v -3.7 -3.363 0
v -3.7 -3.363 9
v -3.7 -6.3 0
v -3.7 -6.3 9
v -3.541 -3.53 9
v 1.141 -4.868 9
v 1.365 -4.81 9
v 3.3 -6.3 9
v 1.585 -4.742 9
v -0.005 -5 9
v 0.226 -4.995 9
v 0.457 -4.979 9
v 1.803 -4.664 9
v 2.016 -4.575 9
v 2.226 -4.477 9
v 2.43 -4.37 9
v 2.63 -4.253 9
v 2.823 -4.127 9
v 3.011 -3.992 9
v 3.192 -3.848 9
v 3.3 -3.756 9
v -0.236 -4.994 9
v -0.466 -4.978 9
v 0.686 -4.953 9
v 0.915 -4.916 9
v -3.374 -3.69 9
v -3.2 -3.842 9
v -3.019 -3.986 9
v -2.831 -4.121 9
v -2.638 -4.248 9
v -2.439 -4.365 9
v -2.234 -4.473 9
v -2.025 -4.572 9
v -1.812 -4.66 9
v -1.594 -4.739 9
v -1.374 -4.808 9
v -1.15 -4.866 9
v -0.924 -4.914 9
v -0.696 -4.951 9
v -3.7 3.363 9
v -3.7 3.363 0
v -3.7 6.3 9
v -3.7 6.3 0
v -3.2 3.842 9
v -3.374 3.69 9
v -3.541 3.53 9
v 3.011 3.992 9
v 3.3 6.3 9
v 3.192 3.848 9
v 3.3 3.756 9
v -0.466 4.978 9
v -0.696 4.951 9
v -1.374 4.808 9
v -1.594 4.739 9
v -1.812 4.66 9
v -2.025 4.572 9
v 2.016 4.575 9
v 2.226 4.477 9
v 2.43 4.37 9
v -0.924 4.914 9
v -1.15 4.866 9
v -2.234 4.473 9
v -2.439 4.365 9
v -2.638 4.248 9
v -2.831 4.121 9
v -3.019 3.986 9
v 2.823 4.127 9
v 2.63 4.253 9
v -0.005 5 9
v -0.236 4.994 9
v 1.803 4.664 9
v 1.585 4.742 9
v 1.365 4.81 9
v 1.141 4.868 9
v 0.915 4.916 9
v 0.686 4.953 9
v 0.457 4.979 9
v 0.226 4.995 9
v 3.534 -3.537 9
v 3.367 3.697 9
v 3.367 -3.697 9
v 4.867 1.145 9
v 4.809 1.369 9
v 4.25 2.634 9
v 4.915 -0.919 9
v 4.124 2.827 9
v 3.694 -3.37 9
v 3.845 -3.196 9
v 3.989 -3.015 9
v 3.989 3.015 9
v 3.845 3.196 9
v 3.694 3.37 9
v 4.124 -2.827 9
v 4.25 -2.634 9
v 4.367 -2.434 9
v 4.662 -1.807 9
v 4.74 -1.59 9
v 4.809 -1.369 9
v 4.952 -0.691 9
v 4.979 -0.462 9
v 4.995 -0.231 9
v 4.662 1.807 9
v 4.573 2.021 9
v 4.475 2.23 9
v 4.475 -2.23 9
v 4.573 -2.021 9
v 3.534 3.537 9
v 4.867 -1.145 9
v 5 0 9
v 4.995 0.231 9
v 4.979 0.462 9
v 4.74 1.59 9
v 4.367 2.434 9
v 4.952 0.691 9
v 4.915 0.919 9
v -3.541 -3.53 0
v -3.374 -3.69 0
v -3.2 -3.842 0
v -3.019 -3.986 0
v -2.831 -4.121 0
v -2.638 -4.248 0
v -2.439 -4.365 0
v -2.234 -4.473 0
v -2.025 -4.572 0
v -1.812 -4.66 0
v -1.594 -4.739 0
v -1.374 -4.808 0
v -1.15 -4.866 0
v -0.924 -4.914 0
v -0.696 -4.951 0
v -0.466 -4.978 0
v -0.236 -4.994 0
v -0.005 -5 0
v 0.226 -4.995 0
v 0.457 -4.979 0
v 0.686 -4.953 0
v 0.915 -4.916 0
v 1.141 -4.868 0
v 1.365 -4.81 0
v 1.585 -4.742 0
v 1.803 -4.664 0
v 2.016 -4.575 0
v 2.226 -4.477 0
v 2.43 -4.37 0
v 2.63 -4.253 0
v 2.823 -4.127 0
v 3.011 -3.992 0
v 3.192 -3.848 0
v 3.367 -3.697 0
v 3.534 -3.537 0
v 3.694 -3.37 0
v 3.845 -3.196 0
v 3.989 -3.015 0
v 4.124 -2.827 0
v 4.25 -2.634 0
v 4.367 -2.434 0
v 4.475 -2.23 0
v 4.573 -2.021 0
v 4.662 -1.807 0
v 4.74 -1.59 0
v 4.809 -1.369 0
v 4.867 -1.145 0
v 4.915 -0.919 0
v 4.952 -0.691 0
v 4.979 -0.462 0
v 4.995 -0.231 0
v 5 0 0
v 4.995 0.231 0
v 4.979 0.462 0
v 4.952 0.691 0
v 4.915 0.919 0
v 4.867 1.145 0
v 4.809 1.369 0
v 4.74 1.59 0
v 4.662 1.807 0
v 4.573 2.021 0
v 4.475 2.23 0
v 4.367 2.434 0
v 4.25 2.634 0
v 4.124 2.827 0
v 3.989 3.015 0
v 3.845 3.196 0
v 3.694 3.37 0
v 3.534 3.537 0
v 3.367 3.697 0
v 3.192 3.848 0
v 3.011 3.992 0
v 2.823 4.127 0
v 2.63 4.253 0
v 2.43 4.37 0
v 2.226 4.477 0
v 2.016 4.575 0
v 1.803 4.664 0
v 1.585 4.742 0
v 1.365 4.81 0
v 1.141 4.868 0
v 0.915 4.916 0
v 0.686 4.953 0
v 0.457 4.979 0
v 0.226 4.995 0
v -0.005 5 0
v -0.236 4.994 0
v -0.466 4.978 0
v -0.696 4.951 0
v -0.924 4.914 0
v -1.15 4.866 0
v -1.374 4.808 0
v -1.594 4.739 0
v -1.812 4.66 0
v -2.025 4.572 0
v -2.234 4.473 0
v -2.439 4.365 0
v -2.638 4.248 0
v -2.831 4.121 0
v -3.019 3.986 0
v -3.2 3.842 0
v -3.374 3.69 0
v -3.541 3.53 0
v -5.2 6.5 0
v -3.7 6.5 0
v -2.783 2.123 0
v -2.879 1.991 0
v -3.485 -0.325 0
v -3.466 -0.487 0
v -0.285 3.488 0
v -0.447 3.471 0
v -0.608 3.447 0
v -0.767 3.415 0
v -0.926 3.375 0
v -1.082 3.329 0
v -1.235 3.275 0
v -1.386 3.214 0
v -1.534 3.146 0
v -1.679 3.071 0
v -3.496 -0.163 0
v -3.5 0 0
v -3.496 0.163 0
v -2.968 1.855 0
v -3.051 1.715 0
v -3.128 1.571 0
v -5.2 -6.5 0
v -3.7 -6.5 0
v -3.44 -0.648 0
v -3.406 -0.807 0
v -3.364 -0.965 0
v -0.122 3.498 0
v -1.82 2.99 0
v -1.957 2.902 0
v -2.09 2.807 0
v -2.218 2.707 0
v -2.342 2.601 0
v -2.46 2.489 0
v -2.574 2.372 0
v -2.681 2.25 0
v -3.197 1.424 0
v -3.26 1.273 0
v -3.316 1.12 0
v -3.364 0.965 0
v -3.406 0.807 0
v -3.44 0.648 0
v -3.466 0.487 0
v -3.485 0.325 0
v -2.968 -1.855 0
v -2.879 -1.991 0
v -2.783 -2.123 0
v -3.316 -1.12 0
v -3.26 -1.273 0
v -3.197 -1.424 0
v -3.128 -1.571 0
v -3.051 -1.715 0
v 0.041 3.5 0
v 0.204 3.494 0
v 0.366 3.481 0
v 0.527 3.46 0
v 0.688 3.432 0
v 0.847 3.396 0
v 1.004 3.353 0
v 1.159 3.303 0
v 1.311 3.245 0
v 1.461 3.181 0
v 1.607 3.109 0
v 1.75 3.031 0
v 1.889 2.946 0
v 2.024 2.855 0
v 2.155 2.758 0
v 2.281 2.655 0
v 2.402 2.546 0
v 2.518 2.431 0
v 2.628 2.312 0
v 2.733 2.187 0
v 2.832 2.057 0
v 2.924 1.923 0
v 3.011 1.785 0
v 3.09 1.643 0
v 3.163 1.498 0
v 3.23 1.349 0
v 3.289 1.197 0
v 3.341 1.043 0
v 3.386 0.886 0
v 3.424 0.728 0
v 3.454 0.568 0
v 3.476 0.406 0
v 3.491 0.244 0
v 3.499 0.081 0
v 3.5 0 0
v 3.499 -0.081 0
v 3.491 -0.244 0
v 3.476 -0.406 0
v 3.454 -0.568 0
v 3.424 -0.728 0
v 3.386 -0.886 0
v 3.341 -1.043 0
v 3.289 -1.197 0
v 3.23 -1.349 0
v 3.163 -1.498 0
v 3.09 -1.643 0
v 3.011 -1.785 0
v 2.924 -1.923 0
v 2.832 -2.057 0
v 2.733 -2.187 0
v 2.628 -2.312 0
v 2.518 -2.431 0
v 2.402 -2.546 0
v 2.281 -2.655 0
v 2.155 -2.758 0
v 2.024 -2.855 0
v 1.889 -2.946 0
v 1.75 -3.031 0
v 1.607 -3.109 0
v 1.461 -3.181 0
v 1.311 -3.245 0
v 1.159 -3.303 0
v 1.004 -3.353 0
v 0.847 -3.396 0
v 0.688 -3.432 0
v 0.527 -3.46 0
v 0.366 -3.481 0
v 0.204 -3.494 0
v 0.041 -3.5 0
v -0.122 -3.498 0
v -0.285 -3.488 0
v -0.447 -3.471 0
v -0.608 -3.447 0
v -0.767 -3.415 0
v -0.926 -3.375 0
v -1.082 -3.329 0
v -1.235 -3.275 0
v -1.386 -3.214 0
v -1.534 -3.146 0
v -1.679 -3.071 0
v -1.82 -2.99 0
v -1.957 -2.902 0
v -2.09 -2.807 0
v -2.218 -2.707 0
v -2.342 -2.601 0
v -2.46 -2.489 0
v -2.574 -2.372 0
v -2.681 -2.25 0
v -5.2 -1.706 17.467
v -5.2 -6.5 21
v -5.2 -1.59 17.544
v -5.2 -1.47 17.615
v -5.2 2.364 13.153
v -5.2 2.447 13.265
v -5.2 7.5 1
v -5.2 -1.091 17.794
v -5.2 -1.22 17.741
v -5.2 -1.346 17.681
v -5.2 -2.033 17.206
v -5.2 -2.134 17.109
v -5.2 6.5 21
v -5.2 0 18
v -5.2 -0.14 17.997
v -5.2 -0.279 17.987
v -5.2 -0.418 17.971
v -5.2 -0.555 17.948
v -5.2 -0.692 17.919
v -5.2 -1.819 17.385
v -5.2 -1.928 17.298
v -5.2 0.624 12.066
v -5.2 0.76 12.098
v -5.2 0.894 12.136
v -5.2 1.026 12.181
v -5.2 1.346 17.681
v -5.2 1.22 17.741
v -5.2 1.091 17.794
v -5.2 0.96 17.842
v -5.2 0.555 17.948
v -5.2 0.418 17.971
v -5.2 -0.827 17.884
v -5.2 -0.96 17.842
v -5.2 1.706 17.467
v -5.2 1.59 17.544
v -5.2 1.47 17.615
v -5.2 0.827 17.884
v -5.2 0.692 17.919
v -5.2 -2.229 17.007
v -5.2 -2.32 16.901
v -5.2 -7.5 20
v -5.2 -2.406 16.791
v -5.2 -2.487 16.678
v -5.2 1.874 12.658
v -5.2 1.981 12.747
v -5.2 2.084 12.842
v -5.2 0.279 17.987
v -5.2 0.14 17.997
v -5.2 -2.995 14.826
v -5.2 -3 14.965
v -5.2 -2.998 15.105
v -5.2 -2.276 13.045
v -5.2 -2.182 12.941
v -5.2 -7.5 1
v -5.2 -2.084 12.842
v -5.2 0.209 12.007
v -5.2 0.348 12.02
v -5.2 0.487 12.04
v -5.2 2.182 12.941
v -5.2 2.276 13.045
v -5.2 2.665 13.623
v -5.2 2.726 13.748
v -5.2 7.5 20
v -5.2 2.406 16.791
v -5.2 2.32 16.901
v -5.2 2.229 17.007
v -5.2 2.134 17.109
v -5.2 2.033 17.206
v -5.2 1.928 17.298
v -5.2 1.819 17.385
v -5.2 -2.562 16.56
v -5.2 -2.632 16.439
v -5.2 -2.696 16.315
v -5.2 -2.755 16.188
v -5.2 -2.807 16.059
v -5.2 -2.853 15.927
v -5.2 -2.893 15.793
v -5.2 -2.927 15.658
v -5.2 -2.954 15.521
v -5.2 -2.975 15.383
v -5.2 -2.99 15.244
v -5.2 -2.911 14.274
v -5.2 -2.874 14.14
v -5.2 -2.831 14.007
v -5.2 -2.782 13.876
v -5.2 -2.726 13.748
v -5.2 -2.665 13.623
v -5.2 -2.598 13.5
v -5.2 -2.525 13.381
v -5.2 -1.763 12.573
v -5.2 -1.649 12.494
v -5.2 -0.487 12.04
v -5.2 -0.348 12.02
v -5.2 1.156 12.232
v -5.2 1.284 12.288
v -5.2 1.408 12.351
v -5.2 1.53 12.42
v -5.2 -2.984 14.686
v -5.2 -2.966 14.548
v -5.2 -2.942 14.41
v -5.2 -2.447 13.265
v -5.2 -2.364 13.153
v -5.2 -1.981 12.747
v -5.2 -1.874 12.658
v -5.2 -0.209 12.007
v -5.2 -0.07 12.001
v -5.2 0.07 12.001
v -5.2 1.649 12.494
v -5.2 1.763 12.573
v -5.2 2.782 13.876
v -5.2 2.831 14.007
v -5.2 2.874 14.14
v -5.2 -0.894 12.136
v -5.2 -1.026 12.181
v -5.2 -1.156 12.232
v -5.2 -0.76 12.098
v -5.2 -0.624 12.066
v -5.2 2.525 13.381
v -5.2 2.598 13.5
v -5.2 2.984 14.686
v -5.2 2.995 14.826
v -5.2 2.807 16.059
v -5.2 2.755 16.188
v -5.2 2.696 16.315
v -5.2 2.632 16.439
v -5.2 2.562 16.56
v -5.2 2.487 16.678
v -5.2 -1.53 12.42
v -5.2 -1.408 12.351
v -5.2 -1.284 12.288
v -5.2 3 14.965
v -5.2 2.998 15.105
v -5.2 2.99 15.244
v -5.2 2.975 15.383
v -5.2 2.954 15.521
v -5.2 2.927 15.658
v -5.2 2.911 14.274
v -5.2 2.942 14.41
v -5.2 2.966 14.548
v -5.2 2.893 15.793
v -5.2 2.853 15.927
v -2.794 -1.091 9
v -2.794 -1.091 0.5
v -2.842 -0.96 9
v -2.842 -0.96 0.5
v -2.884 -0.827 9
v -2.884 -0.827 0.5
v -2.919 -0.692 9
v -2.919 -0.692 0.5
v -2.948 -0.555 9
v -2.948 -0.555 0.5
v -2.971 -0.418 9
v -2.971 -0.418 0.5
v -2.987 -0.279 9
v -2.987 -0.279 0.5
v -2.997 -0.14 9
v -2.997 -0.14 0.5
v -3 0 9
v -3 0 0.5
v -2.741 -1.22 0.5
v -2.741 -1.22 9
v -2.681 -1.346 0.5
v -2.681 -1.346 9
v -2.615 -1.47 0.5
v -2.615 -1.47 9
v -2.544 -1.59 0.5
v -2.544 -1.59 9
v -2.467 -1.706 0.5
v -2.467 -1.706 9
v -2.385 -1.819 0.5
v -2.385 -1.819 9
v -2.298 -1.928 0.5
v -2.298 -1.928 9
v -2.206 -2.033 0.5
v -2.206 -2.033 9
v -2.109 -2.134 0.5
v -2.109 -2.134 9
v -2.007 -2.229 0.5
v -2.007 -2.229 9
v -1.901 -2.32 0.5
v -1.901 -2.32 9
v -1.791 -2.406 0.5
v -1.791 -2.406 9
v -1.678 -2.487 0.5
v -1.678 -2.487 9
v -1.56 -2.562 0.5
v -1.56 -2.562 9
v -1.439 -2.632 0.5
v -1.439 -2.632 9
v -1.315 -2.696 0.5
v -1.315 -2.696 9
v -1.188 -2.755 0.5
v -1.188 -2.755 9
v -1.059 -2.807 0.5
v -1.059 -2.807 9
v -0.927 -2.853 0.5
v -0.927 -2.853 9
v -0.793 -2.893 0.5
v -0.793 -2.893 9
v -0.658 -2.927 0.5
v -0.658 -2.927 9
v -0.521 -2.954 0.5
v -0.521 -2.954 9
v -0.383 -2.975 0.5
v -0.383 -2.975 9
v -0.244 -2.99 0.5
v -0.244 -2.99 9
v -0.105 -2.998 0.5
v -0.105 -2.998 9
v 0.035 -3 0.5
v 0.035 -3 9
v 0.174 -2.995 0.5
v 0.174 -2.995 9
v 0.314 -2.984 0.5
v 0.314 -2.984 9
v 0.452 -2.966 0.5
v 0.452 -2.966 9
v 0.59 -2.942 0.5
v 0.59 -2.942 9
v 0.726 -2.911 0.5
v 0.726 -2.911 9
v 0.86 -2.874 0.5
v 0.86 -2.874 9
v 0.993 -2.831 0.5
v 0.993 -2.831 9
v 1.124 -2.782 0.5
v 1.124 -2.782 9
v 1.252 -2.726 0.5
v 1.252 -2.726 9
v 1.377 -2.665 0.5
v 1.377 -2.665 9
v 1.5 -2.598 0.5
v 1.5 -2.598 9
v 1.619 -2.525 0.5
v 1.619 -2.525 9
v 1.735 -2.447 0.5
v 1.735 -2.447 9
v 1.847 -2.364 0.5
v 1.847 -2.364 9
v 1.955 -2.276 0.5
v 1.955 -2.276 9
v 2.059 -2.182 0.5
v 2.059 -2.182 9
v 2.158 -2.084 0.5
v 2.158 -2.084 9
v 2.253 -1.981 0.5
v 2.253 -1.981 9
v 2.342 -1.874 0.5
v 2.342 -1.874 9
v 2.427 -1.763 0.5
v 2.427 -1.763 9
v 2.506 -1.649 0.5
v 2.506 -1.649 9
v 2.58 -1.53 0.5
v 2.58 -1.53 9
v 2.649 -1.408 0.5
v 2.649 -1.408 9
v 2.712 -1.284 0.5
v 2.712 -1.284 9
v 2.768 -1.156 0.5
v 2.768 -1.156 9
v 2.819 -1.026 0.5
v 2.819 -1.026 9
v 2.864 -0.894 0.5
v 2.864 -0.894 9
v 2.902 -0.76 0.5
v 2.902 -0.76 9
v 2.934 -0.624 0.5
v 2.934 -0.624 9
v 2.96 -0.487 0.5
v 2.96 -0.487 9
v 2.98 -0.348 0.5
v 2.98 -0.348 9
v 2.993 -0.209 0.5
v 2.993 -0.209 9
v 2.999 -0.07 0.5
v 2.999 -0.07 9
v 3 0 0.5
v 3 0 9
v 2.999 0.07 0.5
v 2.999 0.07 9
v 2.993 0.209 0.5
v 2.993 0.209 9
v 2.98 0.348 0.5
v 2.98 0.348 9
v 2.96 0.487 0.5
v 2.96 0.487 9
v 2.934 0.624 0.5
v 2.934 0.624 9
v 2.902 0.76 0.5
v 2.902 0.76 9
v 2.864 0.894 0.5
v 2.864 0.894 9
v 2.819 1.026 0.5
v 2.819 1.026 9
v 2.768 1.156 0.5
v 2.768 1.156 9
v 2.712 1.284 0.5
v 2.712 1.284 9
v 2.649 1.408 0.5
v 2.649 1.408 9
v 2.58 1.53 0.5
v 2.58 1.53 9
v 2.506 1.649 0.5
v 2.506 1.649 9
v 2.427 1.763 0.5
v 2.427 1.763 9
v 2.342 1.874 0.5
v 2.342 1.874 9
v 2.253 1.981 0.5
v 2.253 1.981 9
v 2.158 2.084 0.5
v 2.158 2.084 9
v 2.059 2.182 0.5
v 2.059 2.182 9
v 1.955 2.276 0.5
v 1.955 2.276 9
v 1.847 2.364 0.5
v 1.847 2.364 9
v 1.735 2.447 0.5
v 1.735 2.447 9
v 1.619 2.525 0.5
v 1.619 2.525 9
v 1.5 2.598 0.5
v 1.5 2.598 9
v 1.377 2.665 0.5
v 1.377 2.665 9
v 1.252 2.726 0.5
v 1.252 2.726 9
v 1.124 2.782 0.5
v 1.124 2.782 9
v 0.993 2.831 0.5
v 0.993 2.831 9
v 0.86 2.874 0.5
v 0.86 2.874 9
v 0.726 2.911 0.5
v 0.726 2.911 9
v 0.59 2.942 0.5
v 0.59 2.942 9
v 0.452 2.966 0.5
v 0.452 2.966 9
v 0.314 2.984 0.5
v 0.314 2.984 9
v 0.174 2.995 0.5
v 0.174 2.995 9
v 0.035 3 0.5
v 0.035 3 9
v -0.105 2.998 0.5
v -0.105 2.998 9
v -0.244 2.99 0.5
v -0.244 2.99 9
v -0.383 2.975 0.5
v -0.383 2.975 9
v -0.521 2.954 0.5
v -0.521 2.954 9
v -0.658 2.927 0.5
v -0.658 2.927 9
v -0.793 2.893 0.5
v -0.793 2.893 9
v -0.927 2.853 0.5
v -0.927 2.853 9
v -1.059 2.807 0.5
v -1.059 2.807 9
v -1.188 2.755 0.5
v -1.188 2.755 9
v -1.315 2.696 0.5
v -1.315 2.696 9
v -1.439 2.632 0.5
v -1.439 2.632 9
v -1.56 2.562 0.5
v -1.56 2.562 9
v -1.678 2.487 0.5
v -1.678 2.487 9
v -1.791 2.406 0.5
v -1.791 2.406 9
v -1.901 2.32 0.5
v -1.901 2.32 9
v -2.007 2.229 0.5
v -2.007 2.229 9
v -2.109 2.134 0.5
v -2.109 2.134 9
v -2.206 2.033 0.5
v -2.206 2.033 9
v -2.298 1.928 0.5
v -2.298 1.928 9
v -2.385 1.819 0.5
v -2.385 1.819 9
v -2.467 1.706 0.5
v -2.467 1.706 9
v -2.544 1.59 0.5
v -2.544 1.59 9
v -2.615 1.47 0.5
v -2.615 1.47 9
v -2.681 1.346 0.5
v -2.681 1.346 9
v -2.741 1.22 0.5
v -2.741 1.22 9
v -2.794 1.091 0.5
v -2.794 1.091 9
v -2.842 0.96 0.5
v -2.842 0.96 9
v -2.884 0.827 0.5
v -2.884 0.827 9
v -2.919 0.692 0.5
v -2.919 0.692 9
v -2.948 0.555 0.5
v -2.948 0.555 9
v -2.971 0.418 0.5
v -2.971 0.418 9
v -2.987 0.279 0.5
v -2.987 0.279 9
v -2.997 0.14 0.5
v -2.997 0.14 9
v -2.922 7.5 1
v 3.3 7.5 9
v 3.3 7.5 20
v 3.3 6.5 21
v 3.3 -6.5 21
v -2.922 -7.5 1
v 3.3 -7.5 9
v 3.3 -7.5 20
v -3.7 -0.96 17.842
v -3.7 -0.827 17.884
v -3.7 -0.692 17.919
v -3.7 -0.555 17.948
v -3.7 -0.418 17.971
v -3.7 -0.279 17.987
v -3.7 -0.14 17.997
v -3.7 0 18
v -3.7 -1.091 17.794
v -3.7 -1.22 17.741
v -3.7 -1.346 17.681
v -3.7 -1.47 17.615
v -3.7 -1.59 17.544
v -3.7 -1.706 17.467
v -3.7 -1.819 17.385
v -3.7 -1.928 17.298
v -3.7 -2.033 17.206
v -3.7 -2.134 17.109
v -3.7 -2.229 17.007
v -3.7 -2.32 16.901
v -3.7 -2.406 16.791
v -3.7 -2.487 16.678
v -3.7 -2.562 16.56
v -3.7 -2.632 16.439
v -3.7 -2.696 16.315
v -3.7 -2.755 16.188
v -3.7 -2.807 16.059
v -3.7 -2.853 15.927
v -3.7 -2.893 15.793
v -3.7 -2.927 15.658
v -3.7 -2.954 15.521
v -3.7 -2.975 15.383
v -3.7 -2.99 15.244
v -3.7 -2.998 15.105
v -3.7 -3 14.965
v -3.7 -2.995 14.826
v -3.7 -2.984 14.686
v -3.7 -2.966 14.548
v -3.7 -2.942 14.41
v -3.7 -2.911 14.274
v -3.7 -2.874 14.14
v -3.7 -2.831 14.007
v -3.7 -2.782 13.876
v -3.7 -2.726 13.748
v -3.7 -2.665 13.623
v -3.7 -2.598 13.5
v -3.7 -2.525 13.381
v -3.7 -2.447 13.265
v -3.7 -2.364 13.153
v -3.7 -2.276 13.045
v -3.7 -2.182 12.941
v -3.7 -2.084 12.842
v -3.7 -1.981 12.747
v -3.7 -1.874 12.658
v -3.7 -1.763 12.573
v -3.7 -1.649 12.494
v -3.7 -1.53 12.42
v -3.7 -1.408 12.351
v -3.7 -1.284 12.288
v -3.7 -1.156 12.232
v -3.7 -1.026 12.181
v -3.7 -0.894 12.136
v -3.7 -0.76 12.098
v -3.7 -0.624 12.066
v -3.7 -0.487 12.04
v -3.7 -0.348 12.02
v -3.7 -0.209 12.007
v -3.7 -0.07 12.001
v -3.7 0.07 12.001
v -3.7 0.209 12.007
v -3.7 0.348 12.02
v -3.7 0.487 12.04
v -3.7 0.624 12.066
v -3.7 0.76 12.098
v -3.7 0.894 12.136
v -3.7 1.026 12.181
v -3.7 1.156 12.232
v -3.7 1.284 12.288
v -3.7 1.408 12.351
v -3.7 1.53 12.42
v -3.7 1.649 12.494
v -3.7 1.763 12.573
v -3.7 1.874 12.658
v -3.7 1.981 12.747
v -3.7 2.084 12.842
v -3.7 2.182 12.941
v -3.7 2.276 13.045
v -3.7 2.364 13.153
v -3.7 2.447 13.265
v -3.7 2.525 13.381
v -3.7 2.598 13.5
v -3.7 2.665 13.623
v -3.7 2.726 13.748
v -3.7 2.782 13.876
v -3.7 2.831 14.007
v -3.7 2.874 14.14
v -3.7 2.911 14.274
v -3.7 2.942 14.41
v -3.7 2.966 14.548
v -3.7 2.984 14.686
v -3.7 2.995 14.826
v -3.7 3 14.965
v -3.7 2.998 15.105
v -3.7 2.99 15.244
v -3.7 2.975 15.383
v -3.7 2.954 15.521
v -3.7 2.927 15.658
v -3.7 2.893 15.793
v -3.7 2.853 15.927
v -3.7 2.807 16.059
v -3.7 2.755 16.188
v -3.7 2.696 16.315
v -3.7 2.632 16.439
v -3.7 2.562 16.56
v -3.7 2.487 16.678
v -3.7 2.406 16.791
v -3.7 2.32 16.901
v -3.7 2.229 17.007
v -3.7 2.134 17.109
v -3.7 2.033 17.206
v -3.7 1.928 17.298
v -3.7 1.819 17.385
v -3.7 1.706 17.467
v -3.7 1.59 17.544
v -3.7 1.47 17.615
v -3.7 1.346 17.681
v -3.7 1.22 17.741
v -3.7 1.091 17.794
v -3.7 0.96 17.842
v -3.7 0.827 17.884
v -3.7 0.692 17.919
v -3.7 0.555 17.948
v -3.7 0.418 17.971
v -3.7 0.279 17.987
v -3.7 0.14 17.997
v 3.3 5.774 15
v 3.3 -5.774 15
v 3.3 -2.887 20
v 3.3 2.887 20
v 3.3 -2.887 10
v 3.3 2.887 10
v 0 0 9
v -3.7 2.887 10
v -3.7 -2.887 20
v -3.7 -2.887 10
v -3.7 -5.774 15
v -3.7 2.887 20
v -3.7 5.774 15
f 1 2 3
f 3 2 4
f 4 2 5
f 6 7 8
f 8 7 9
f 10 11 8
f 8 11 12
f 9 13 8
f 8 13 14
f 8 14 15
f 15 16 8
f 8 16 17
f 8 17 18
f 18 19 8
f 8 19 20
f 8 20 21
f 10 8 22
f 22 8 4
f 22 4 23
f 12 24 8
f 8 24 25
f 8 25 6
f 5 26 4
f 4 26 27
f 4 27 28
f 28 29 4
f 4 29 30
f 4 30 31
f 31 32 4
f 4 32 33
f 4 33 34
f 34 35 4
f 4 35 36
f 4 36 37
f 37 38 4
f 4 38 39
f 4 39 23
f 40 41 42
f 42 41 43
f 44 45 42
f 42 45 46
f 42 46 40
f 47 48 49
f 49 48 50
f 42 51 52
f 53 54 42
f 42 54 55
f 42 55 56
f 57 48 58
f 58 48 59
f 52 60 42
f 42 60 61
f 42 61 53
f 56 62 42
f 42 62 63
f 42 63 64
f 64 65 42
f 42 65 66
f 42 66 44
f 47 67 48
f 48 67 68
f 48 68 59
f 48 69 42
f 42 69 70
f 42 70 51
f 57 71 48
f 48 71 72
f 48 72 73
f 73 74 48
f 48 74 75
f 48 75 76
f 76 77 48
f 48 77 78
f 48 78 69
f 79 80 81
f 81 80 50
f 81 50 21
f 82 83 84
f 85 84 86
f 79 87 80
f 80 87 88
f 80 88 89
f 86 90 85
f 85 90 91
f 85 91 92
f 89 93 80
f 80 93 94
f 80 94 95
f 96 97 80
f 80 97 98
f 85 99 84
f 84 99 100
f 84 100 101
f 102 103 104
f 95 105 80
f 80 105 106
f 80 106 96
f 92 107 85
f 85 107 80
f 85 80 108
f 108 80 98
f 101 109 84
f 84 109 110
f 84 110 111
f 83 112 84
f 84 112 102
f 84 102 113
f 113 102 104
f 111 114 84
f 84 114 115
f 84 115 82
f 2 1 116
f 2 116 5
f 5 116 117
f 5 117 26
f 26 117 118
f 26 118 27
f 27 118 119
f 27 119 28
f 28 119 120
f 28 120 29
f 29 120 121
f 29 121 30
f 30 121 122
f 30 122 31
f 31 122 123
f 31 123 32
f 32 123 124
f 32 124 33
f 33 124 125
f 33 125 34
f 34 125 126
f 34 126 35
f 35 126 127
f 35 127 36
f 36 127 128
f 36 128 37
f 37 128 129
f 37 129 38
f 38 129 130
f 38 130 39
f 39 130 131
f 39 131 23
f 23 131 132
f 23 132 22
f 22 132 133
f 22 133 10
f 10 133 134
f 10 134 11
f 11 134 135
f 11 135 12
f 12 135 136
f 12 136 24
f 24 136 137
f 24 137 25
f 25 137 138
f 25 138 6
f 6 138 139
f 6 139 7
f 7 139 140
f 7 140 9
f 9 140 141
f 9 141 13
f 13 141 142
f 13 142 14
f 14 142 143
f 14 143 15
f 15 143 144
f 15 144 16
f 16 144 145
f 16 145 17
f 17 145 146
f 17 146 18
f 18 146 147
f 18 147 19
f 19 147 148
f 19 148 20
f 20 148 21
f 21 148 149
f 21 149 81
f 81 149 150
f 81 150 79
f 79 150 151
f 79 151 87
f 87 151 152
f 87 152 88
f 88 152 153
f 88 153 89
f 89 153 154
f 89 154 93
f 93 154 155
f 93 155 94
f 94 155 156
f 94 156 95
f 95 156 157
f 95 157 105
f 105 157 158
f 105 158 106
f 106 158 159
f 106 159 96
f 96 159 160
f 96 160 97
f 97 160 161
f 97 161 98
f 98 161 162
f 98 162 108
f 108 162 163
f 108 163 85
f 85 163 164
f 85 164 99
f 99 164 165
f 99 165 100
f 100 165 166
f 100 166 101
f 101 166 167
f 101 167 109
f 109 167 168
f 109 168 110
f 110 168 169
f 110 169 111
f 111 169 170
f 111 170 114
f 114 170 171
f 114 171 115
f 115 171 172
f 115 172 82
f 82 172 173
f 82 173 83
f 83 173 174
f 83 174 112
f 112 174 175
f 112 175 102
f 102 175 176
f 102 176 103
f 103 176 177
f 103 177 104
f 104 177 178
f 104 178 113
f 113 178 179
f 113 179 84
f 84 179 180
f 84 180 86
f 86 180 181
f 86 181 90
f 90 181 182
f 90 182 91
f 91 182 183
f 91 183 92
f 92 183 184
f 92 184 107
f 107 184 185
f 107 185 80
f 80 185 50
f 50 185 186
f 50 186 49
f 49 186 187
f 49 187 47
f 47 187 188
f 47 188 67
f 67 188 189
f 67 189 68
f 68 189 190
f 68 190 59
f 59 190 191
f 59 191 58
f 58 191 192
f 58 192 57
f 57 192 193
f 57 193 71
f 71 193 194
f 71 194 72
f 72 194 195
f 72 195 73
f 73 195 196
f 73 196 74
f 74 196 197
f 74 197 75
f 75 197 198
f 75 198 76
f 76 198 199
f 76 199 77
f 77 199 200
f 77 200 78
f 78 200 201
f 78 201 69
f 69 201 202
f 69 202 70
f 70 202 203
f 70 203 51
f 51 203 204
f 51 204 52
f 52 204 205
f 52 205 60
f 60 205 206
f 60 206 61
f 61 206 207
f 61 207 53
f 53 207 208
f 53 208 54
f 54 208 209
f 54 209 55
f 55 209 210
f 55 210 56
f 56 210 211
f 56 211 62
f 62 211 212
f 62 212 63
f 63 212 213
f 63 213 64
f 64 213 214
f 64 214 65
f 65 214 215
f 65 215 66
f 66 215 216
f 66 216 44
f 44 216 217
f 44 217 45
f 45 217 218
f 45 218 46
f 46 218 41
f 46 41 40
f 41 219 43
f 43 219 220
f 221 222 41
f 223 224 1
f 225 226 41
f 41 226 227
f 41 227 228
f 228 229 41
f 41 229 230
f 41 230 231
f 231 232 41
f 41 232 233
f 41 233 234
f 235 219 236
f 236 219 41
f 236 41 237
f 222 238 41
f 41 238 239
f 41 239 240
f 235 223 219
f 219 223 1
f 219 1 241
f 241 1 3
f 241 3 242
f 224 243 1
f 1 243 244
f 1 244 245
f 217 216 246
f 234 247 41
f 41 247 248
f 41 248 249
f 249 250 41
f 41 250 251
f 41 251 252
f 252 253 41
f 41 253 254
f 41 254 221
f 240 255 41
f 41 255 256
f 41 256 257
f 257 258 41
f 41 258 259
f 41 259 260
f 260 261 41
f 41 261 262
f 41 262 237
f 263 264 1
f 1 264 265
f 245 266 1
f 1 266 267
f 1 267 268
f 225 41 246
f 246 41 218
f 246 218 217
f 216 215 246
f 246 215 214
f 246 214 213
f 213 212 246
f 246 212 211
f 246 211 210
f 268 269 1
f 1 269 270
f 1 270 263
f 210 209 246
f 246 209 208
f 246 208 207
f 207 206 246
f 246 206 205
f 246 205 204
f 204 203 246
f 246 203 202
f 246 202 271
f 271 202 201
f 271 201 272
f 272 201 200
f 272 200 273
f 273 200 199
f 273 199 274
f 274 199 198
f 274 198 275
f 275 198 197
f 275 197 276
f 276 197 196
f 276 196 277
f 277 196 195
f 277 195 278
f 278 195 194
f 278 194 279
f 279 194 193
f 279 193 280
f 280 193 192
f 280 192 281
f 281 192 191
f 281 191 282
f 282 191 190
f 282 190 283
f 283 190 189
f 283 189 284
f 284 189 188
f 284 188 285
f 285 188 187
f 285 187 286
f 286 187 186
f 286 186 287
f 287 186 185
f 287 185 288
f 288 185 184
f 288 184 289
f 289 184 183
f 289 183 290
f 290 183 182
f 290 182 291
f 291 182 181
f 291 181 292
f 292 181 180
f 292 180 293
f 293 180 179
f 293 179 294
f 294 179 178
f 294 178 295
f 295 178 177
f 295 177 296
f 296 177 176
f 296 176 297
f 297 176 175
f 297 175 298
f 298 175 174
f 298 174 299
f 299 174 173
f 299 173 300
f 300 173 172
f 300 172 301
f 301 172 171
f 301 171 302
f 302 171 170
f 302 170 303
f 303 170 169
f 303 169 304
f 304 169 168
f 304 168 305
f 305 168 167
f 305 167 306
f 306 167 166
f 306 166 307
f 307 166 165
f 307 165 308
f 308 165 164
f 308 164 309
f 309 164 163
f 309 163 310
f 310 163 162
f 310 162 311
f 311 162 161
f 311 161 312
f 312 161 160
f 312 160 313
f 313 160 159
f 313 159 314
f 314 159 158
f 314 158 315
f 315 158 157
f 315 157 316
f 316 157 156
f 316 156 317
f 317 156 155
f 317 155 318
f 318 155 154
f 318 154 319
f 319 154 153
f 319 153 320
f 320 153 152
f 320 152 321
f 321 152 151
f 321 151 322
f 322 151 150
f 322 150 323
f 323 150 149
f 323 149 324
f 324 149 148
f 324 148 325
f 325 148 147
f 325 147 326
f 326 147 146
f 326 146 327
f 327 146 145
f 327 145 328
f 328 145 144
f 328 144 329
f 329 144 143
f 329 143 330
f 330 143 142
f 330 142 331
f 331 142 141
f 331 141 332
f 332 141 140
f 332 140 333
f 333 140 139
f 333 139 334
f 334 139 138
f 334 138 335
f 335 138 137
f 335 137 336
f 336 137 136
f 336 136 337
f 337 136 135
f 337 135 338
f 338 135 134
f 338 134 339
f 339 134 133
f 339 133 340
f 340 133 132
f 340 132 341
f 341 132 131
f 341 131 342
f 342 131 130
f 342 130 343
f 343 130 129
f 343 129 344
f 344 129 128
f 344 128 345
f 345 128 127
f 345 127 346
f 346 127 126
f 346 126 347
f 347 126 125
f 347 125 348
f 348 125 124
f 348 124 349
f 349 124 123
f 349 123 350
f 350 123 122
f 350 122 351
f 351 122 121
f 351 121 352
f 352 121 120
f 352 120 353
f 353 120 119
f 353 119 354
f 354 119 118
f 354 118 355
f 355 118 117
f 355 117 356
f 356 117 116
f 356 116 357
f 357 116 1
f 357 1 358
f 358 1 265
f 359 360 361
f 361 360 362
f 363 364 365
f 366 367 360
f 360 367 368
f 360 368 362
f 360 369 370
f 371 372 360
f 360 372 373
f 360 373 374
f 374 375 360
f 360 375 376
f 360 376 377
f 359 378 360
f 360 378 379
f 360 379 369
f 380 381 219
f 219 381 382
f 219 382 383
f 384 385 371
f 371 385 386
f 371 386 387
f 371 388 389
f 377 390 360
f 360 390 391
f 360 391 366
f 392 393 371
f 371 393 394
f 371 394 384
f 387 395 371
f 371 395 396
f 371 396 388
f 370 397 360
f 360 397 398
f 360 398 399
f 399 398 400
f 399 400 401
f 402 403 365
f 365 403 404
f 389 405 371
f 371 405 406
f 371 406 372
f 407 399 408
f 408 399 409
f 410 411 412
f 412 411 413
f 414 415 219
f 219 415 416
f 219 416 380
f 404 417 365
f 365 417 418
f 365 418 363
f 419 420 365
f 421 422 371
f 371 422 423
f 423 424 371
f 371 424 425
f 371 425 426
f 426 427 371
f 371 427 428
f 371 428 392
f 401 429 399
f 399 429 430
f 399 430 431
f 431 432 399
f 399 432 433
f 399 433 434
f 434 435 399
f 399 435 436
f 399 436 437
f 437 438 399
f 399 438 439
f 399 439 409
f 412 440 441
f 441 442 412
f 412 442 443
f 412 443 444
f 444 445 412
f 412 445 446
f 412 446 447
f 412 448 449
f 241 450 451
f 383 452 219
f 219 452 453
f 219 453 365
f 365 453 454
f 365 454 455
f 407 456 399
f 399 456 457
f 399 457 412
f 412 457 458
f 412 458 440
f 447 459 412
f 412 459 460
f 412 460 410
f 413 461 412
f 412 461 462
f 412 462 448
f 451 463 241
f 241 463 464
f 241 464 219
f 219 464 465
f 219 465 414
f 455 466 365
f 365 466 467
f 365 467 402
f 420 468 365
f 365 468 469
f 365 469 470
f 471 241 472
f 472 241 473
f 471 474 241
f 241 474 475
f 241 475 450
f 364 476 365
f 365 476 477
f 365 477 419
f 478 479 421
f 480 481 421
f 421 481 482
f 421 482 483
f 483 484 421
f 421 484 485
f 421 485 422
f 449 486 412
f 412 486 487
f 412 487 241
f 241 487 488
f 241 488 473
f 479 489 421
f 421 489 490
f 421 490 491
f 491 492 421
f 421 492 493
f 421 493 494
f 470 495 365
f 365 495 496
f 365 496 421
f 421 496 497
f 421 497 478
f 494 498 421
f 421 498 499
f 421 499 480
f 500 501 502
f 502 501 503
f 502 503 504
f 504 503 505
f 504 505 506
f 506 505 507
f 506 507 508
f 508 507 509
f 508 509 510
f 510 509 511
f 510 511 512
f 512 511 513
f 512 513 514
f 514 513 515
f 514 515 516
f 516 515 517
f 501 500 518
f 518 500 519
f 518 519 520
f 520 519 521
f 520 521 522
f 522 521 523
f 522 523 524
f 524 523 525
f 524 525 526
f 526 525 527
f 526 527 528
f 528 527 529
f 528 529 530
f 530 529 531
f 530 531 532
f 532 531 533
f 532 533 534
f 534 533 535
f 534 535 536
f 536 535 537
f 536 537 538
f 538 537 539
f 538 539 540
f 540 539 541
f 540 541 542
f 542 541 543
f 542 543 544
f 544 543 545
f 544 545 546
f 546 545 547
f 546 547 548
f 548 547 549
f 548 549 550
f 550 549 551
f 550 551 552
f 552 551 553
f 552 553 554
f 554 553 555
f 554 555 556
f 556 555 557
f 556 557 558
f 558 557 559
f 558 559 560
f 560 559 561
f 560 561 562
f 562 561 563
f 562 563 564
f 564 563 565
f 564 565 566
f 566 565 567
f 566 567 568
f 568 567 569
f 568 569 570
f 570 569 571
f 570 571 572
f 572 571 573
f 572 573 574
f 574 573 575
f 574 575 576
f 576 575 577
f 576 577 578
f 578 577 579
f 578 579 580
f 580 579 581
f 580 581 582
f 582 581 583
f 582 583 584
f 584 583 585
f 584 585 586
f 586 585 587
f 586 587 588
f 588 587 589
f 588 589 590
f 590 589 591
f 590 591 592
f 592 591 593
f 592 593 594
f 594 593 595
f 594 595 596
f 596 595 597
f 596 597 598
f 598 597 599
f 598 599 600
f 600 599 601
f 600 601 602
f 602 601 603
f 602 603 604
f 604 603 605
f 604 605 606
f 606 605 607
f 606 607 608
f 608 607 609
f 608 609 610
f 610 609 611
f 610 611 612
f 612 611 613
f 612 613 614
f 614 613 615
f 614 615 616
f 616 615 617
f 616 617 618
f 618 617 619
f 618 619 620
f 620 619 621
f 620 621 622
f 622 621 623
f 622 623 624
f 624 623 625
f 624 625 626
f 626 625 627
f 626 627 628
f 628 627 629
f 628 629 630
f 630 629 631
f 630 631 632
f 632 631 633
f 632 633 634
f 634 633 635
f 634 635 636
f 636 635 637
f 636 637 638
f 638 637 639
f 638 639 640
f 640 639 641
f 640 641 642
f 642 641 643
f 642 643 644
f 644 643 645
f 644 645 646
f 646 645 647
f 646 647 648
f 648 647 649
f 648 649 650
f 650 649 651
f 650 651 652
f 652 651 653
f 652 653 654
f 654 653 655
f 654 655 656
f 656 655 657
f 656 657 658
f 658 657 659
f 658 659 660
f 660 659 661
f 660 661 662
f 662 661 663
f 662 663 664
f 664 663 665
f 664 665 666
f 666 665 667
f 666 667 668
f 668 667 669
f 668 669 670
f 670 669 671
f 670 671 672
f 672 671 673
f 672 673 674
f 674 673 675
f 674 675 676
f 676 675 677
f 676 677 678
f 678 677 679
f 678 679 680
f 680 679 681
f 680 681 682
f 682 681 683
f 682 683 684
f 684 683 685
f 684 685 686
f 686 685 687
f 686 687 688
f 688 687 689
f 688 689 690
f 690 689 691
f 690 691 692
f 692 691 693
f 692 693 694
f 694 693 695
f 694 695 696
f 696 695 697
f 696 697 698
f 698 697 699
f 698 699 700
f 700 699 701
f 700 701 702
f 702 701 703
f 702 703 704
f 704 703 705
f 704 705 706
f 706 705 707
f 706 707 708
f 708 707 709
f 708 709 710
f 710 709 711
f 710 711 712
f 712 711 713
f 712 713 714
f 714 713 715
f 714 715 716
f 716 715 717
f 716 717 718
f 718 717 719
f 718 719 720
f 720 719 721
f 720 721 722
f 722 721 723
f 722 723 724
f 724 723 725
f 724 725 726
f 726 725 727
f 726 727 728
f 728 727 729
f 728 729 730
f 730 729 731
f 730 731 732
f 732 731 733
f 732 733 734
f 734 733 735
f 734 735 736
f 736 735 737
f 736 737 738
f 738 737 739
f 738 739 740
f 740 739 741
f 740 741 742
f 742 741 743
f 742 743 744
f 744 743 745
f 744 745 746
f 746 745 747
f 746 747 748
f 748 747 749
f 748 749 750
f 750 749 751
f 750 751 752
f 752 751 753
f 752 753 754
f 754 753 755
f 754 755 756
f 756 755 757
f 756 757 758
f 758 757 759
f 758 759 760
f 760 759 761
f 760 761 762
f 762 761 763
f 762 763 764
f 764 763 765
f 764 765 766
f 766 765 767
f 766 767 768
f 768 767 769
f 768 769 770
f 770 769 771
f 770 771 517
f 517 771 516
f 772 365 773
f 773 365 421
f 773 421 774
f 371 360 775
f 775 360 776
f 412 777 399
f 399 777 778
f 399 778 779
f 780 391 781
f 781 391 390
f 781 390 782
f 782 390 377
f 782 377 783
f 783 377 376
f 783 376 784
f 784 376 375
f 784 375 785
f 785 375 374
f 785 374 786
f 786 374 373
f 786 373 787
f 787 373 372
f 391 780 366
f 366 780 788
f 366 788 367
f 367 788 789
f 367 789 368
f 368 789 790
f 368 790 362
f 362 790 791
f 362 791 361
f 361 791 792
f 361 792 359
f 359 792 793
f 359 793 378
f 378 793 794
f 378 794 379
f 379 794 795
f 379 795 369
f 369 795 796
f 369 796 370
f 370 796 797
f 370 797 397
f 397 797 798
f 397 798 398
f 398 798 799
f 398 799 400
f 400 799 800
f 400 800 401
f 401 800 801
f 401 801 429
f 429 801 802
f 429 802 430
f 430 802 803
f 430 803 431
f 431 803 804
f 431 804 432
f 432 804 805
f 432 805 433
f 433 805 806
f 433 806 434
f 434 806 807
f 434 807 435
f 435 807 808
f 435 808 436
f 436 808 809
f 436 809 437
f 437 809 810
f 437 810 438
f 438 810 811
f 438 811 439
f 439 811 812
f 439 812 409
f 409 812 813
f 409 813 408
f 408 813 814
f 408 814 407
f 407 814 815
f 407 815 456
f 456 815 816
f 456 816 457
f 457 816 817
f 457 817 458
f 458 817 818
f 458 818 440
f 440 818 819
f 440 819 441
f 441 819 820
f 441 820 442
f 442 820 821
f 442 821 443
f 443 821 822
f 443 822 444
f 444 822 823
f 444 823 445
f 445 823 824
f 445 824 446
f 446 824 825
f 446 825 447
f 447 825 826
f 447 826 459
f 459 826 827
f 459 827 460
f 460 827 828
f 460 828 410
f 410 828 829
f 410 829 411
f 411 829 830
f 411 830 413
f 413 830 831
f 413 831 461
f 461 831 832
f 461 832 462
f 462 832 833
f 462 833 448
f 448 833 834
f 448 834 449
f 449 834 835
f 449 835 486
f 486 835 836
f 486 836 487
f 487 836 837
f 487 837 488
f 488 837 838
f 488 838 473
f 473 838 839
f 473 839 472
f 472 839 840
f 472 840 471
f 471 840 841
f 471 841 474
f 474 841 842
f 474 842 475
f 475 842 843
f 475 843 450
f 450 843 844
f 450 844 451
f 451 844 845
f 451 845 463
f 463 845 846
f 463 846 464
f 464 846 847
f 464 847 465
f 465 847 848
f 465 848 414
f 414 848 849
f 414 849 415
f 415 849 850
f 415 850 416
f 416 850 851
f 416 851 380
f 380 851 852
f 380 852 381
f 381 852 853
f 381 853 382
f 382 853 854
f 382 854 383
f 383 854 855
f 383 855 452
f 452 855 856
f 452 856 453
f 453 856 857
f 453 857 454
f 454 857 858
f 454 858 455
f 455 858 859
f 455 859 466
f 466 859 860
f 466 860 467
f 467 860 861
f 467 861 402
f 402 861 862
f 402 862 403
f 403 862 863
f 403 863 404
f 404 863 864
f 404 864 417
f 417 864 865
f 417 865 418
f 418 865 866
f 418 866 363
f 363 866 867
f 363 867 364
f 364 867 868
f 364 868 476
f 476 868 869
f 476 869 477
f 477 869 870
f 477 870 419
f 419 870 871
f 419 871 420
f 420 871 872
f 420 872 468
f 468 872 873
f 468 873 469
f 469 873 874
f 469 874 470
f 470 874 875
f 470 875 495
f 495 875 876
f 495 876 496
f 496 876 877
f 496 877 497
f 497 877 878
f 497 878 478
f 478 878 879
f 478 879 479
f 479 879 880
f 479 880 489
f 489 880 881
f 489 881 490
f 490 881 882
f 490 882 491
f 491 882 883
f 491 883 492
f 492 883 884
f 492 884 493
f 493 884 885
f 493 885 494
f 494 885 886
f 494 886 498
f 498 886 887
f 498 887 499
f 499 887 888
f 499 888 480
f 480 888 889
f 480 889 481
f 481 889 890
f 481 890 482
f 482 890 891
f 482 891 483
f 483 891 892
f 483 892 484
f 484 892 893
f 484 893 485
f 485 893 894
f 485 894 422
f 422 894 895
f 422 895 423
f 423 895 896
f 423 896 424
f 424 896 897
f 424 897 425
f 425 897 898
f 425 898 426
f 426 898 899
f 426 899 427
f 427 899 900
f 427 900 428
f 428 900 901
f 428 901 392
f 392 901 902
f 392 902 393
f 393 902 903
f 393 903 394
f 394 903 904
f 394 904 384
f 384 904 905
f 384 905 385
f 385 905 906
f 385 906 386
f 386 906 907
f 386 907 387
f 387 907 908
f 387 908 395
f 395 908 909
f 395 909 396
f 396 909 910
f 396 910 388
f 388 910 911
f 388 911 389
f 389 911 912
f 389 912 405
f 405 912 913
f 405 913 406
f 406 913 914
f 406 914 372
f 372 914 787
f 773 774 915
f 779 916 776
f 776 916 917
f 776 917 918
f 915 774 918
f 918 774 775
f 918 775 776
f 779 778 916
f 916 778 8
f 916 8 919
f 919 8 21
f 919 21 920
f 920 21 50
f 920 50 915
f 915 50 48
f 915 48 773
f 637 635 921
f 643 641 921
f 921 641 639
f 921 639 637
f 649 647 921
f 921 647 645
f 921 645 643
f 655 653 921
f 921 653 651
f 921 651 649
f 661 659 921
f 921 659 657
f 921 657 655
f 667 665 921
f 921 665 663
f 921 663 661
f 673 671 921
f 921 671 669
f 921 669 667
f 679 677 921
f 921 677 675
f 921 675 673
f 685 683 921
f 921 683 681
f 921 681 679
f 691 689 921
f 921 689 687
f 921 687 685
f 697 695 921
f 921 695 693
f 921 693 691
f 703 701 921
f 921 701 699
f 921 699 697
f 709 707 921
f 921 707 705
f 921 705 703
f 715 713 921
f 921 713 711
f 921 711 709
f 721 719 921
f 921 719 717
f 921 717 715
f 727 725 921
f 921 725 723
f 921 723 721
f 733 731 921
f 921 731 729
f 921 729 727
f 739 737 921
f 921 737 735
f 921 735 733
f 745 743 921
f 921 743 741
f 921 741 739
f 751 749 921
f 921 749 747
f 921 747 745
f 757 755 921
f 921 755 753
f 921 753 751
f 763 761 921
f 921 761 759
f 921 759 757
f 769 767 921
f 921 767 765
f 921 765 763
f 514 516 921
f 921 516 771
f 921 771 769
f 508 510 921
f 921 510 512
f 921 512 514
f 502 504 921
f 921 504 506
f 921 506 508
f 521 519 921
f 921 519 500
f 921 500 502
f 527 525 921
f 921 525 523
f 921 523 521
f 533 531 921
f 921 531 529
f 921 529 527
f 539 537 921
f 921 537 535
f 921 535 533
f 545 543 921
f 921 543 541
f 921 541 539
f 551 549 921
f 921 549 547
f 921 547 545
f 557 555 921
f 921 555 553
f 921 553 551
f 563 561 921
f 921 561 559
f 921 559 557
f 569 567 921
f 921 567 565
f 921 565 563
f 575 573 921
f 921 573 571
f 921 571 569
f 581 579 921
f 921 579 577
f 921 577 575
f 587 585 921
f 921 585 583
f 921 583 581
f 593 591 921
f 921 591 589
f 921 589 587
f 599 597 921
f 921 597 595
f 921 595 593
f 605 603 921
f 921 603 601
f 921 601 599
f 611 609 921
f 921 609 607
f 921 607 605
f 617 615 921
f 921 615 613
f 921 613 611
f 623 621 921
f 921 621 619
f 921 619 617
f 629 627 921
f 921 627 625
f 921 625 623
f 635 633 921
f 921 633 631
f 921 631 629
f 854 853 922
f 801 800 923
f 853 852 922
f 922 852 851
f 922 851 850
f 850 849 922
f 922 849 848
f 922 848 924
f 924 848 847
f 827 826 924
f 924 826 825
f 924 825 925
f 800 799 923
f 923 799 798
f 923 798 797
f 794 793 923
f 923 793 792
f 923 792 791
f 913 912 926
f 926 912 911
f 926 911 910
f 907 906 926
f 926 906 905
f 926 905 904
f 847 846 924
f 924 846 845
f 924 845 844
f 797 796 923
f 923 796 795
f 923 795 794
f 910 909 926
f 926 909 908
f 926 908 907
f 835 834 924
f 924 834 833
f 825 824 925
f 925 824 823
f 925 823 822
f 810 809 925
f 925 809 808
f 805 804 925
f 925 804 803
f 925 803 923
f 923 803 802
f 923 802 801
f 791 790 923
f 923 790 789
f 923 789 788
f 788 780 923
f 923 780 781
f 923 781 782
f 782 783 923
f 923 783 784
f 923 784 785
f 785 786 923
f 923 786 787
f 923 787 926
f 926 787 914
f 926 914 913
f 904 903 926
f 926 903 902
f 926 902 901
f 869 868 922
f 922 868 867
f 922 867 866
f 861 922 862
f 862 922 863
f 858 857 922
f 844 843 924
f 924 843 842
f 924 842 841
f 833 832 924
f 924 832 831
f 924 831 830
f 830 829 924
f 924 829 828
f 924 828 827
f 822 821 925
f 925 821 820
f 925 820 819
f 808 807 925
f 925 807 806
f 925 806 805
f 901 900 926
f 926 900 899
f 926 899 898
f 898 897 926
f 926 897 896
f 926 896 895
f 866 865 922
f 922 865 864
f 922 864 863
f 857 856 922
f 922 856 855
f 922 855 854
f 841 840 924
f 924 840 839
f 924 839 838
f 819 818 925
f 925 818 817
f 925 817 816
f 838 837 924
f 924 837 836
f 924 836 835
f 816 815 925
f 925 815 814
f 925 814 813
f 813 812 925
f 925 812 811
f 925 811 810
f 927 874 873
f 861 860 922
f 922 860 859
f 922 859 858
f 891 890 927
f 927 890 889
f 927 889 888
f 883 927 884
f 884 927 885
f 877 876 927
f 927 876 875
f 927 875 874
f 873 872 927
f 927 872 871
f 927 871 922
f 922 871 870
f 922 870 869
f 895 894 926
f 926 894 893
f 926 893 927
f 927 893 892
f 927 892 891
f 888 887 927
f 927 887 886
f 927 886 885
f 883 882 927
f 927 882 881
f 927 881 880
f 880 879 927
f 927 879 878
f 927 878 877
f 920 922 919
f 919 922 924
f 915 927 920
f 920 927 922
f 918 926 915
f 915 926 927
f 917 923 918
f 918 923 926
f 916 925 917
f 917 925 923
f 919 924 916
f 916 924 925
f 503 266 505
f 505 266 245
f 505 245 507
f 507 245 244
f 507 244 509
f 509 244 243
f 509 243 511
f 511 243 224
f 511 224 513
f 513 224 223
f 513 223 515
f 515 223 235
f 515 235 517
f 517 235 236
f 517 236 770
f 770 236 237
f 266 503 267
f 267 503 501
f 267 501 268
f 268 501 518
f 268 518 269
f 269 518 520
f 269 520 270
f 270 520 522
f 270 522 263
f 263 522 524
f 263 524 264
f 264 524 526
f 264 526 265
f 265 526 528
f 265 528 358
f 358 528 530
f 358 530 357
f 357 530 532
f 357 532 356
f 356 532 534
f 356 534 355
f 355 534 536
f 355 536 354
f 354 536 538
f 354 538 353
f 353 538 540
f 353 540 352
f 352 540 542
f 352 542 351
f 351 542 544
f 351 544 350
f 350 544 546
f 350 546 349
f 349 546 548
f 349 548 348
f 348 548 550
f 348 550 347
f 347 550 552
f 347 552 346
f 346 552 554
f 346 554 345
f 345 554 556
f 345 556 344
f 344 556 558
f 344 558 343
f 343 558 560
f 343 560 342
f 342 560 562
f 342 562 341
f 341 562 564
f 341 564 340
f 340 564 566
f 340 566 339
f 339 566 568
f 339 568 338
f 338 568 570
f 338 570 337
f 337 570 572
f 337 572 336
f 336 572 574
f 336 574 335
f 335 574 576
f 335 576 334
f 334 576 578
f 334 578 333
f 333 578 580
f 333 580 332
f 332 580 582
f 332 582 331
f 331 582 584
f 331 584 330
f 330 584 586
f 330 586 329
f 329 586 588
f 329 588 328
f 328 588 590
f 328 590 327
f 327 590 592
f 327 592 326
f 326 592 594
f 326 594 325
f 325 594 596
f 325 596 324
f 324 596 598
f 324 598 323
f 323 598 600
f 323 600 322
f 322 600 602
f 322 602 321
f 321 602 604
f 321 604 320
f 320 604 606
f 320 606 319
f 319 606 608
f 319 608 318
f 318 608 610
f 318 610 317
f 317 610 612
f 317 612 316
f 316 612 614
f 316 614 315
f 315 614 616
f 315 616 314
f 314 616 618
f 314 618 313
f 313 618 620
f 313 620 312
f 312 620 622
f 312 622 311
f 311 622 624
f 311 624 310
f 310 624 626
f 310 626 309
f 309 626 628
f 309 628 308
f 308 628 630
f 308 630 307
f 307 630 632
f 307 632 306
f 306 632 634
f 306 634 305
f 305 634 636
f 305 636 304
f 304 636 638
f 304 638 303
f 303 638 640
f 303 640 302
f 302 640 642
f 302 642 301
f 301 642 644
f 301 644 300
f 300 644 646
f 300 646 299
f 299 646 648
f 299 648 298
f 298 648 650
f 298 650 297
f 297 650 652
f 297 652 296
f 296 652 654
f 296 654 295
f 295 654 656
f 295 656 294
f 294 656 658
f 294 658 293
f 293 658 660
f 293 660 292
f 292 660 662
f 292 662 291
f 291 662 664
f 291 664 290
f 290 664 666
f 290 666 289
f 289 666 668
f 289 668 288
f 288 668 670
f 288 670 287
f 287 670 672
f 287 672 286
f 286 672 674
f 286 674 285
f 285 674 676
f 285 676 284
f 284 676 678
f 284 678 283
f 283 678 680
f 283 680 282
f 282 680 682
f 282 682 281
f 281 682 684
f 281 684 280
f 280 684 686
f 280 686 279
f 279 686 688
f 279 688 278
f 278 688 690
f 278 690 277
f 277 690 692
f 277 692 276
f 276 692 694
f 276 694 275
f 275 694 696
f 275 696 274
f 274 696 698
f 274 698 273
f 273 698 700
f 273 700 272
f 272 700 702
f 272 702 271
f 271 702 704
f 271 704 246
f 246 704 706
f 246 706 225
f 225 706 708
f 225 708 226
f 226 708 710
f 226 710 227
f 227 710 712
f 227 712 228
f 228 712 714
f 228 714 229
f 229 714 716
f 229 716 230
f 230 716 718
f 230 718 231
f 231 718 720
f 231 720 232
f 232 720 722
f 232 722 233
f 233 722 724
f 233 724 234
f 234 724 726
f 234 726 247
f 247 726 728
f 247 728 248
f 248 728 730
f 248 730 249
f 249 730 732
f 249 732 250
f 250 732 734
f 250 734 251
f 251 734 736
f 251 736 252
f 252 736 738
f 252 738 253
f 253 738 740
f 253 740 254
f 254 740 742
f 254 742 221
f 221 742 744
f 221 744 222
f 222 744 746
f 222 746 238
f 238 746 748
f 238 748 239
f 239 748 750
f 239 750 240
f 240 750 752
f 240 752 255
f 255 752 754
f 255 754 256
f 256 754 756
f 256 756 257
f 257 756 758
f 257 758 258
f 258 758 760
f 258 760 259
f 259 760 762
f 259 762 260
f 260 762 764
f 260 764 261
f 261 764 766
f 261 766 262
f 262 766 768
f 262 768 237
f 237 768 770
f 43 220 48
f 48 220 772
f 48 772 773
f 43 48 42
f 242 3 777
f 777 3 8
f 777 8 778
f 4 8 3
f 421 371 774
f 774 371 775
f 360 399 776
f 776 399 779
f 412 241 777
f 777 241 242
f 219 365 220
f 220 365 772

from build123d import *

# Parameters (mm, degrees)
SALIENTE_EXTRUIR1_DEPTH = 9
CROQUIS3_W              = 21
CROQUIS3_H              = 15
SALIENTE_EXTRUIR2_DEPTH = 1.5
CROQUIS4_R              = 3
CORTAR_EXTRUIR1_DEPTH   = 11.2
CROQUIS5_W              = 12
CROQUIS5_H              = 15
SALIENTE_EXTRUIR3_DEPTH = 7
CORTAR_EXTRUIR2_DEPTH   = 7
CHAFL_N1_SIZE           = 0.5
SALIENTE_EXTRUIR4_DEPTH = 1.2
CHAFL_N2_SIZE           = 1


with BuildPart() as part:
    # Croquis1 → Saliente-Extruir1 (new body)
    with BuildSketch(Plane.XY):
        with BuildLine():
            Line((-4.330127019, 2.5), (-5.2, 2.5))
            Line((-5.2, 2.5), (-5.2, -2.5))
            Line((-5.2, -2.5), (-4.330127019, -2.5))
            ThreePointArc((-4.330127019, -2.5), (-0.868240888, -4.924038765), (3.213938048, -3.830222216))
            ThreePointArc((3.213938048, -3.830222216), (5, 0), (3.213938048, 3.830222216))
            ThreePointArc((3.213938048, 3.830222216), (-0.868240888, 4.924038765), (-4.330127019, 2.5))
        make_face()
        with BuildLine():
            ThreePointArc((1.928362829, 2.298133329), (-3, 0), (1.928362829, -2.298133329))
            ThreePointArc((1.928362829, -2.298133329), (3, 0), (1.928362829, 2.298133329))
        make_face(mode=Mode.SUBTRACT)
    extrude(amount=SALIENTE_EXTRUIR1_DEPTH)

    # Croquis3 → Saliente-Extruir2 (add)
    with BuildSketch(Plane.ZY.offset(5.2)):
        with Locations((10.5, 0)):
            Rectangle(CROQUIS3_W, CROQUIS3_H)
    extrude(amount=-SALIENTE_EXTRUIR2_DEPTH)

    # Croquis4 → Cortar-Extruir1 (cut, through all)
    with BuildSketch(Plane.ZY.offset(5.2)):
        with Locations((15, 0)):
            Circle(CROQUIS4_R)
    extrude(amount=-CORTAR_EXTRUIR1_DEPTH, mode=Mode.SUBTRACT)

    # Croquis5 → Saliente-Extruir3 (add)
    with BuildSketch(Plane(origin=(-3.7, 0, 0), x_dir=(0, 0, -1), z_dir=(1, 0, 0))):
        with Locations((-15, 0)):
            Rectangle(CROQUIS5_W, CROQUIS5_H)
    extrude(amount=SALIENTE_EXTRUIR3_DEPTH)

    # Croquis7 → Cortar-Extruir2 (cut)
    with BuildSketch(Plane(origin=(3.3, 0, 0), x_dir=(0, 0, -1), z_dir=(1, 0, 0))):
        Polygon((-10, -2.886751346), (-10, 2.886751346), (-15, 5.773502692), (-20, 2.886751346), (-20, -2.886751346), (-15, -5.773502692), align=None)
    extrude(amount=-CORTAR_EXTRUIR2_DEPTH, mode=Mode.SUBTRACT)

    # Chaflán1
    chafl_n1_edges = [part.edges().sort_by_distance(p)[0] for p in [
        (-1.928362829, 2.298133329, 0),
    ]]
    chamfer(chafl_n1_edges, length=CHAFL_N1_SIZE)

    # Croquis8 → Saliente-Extruir4 (add)
    with BuildSketch(Plane(origin=(0, 7.5, 0), x_dir=(1, 0, 0), z_dir=(0, 1, 0))):
        Polygon((-3.7, 0), (3.3, -9), (-3.7, -9), align=None)
    saliente_extruir4 = extrude(amount=-SALIENTE_EXTRUIR4_DEPTH)

    # Simetría1: Saliente-Extruir4 across plane
    add(saliente_extruir4.mirror(Plane.ZX))

    # Chaflán2
    chafl_n2_edges = [part.edges().sort_by_distance(p)[0] for p in [
        (-4.45, -7.5, 0),
        (-4.45, 7.5, 0),
        (-0.95, 7.5, 21),
        (-0.95, -7.5, 21),
    ]]
    chamfer(chafl_n2_edges, length=CHAFL_N2_SIZE)


solid = part.part
